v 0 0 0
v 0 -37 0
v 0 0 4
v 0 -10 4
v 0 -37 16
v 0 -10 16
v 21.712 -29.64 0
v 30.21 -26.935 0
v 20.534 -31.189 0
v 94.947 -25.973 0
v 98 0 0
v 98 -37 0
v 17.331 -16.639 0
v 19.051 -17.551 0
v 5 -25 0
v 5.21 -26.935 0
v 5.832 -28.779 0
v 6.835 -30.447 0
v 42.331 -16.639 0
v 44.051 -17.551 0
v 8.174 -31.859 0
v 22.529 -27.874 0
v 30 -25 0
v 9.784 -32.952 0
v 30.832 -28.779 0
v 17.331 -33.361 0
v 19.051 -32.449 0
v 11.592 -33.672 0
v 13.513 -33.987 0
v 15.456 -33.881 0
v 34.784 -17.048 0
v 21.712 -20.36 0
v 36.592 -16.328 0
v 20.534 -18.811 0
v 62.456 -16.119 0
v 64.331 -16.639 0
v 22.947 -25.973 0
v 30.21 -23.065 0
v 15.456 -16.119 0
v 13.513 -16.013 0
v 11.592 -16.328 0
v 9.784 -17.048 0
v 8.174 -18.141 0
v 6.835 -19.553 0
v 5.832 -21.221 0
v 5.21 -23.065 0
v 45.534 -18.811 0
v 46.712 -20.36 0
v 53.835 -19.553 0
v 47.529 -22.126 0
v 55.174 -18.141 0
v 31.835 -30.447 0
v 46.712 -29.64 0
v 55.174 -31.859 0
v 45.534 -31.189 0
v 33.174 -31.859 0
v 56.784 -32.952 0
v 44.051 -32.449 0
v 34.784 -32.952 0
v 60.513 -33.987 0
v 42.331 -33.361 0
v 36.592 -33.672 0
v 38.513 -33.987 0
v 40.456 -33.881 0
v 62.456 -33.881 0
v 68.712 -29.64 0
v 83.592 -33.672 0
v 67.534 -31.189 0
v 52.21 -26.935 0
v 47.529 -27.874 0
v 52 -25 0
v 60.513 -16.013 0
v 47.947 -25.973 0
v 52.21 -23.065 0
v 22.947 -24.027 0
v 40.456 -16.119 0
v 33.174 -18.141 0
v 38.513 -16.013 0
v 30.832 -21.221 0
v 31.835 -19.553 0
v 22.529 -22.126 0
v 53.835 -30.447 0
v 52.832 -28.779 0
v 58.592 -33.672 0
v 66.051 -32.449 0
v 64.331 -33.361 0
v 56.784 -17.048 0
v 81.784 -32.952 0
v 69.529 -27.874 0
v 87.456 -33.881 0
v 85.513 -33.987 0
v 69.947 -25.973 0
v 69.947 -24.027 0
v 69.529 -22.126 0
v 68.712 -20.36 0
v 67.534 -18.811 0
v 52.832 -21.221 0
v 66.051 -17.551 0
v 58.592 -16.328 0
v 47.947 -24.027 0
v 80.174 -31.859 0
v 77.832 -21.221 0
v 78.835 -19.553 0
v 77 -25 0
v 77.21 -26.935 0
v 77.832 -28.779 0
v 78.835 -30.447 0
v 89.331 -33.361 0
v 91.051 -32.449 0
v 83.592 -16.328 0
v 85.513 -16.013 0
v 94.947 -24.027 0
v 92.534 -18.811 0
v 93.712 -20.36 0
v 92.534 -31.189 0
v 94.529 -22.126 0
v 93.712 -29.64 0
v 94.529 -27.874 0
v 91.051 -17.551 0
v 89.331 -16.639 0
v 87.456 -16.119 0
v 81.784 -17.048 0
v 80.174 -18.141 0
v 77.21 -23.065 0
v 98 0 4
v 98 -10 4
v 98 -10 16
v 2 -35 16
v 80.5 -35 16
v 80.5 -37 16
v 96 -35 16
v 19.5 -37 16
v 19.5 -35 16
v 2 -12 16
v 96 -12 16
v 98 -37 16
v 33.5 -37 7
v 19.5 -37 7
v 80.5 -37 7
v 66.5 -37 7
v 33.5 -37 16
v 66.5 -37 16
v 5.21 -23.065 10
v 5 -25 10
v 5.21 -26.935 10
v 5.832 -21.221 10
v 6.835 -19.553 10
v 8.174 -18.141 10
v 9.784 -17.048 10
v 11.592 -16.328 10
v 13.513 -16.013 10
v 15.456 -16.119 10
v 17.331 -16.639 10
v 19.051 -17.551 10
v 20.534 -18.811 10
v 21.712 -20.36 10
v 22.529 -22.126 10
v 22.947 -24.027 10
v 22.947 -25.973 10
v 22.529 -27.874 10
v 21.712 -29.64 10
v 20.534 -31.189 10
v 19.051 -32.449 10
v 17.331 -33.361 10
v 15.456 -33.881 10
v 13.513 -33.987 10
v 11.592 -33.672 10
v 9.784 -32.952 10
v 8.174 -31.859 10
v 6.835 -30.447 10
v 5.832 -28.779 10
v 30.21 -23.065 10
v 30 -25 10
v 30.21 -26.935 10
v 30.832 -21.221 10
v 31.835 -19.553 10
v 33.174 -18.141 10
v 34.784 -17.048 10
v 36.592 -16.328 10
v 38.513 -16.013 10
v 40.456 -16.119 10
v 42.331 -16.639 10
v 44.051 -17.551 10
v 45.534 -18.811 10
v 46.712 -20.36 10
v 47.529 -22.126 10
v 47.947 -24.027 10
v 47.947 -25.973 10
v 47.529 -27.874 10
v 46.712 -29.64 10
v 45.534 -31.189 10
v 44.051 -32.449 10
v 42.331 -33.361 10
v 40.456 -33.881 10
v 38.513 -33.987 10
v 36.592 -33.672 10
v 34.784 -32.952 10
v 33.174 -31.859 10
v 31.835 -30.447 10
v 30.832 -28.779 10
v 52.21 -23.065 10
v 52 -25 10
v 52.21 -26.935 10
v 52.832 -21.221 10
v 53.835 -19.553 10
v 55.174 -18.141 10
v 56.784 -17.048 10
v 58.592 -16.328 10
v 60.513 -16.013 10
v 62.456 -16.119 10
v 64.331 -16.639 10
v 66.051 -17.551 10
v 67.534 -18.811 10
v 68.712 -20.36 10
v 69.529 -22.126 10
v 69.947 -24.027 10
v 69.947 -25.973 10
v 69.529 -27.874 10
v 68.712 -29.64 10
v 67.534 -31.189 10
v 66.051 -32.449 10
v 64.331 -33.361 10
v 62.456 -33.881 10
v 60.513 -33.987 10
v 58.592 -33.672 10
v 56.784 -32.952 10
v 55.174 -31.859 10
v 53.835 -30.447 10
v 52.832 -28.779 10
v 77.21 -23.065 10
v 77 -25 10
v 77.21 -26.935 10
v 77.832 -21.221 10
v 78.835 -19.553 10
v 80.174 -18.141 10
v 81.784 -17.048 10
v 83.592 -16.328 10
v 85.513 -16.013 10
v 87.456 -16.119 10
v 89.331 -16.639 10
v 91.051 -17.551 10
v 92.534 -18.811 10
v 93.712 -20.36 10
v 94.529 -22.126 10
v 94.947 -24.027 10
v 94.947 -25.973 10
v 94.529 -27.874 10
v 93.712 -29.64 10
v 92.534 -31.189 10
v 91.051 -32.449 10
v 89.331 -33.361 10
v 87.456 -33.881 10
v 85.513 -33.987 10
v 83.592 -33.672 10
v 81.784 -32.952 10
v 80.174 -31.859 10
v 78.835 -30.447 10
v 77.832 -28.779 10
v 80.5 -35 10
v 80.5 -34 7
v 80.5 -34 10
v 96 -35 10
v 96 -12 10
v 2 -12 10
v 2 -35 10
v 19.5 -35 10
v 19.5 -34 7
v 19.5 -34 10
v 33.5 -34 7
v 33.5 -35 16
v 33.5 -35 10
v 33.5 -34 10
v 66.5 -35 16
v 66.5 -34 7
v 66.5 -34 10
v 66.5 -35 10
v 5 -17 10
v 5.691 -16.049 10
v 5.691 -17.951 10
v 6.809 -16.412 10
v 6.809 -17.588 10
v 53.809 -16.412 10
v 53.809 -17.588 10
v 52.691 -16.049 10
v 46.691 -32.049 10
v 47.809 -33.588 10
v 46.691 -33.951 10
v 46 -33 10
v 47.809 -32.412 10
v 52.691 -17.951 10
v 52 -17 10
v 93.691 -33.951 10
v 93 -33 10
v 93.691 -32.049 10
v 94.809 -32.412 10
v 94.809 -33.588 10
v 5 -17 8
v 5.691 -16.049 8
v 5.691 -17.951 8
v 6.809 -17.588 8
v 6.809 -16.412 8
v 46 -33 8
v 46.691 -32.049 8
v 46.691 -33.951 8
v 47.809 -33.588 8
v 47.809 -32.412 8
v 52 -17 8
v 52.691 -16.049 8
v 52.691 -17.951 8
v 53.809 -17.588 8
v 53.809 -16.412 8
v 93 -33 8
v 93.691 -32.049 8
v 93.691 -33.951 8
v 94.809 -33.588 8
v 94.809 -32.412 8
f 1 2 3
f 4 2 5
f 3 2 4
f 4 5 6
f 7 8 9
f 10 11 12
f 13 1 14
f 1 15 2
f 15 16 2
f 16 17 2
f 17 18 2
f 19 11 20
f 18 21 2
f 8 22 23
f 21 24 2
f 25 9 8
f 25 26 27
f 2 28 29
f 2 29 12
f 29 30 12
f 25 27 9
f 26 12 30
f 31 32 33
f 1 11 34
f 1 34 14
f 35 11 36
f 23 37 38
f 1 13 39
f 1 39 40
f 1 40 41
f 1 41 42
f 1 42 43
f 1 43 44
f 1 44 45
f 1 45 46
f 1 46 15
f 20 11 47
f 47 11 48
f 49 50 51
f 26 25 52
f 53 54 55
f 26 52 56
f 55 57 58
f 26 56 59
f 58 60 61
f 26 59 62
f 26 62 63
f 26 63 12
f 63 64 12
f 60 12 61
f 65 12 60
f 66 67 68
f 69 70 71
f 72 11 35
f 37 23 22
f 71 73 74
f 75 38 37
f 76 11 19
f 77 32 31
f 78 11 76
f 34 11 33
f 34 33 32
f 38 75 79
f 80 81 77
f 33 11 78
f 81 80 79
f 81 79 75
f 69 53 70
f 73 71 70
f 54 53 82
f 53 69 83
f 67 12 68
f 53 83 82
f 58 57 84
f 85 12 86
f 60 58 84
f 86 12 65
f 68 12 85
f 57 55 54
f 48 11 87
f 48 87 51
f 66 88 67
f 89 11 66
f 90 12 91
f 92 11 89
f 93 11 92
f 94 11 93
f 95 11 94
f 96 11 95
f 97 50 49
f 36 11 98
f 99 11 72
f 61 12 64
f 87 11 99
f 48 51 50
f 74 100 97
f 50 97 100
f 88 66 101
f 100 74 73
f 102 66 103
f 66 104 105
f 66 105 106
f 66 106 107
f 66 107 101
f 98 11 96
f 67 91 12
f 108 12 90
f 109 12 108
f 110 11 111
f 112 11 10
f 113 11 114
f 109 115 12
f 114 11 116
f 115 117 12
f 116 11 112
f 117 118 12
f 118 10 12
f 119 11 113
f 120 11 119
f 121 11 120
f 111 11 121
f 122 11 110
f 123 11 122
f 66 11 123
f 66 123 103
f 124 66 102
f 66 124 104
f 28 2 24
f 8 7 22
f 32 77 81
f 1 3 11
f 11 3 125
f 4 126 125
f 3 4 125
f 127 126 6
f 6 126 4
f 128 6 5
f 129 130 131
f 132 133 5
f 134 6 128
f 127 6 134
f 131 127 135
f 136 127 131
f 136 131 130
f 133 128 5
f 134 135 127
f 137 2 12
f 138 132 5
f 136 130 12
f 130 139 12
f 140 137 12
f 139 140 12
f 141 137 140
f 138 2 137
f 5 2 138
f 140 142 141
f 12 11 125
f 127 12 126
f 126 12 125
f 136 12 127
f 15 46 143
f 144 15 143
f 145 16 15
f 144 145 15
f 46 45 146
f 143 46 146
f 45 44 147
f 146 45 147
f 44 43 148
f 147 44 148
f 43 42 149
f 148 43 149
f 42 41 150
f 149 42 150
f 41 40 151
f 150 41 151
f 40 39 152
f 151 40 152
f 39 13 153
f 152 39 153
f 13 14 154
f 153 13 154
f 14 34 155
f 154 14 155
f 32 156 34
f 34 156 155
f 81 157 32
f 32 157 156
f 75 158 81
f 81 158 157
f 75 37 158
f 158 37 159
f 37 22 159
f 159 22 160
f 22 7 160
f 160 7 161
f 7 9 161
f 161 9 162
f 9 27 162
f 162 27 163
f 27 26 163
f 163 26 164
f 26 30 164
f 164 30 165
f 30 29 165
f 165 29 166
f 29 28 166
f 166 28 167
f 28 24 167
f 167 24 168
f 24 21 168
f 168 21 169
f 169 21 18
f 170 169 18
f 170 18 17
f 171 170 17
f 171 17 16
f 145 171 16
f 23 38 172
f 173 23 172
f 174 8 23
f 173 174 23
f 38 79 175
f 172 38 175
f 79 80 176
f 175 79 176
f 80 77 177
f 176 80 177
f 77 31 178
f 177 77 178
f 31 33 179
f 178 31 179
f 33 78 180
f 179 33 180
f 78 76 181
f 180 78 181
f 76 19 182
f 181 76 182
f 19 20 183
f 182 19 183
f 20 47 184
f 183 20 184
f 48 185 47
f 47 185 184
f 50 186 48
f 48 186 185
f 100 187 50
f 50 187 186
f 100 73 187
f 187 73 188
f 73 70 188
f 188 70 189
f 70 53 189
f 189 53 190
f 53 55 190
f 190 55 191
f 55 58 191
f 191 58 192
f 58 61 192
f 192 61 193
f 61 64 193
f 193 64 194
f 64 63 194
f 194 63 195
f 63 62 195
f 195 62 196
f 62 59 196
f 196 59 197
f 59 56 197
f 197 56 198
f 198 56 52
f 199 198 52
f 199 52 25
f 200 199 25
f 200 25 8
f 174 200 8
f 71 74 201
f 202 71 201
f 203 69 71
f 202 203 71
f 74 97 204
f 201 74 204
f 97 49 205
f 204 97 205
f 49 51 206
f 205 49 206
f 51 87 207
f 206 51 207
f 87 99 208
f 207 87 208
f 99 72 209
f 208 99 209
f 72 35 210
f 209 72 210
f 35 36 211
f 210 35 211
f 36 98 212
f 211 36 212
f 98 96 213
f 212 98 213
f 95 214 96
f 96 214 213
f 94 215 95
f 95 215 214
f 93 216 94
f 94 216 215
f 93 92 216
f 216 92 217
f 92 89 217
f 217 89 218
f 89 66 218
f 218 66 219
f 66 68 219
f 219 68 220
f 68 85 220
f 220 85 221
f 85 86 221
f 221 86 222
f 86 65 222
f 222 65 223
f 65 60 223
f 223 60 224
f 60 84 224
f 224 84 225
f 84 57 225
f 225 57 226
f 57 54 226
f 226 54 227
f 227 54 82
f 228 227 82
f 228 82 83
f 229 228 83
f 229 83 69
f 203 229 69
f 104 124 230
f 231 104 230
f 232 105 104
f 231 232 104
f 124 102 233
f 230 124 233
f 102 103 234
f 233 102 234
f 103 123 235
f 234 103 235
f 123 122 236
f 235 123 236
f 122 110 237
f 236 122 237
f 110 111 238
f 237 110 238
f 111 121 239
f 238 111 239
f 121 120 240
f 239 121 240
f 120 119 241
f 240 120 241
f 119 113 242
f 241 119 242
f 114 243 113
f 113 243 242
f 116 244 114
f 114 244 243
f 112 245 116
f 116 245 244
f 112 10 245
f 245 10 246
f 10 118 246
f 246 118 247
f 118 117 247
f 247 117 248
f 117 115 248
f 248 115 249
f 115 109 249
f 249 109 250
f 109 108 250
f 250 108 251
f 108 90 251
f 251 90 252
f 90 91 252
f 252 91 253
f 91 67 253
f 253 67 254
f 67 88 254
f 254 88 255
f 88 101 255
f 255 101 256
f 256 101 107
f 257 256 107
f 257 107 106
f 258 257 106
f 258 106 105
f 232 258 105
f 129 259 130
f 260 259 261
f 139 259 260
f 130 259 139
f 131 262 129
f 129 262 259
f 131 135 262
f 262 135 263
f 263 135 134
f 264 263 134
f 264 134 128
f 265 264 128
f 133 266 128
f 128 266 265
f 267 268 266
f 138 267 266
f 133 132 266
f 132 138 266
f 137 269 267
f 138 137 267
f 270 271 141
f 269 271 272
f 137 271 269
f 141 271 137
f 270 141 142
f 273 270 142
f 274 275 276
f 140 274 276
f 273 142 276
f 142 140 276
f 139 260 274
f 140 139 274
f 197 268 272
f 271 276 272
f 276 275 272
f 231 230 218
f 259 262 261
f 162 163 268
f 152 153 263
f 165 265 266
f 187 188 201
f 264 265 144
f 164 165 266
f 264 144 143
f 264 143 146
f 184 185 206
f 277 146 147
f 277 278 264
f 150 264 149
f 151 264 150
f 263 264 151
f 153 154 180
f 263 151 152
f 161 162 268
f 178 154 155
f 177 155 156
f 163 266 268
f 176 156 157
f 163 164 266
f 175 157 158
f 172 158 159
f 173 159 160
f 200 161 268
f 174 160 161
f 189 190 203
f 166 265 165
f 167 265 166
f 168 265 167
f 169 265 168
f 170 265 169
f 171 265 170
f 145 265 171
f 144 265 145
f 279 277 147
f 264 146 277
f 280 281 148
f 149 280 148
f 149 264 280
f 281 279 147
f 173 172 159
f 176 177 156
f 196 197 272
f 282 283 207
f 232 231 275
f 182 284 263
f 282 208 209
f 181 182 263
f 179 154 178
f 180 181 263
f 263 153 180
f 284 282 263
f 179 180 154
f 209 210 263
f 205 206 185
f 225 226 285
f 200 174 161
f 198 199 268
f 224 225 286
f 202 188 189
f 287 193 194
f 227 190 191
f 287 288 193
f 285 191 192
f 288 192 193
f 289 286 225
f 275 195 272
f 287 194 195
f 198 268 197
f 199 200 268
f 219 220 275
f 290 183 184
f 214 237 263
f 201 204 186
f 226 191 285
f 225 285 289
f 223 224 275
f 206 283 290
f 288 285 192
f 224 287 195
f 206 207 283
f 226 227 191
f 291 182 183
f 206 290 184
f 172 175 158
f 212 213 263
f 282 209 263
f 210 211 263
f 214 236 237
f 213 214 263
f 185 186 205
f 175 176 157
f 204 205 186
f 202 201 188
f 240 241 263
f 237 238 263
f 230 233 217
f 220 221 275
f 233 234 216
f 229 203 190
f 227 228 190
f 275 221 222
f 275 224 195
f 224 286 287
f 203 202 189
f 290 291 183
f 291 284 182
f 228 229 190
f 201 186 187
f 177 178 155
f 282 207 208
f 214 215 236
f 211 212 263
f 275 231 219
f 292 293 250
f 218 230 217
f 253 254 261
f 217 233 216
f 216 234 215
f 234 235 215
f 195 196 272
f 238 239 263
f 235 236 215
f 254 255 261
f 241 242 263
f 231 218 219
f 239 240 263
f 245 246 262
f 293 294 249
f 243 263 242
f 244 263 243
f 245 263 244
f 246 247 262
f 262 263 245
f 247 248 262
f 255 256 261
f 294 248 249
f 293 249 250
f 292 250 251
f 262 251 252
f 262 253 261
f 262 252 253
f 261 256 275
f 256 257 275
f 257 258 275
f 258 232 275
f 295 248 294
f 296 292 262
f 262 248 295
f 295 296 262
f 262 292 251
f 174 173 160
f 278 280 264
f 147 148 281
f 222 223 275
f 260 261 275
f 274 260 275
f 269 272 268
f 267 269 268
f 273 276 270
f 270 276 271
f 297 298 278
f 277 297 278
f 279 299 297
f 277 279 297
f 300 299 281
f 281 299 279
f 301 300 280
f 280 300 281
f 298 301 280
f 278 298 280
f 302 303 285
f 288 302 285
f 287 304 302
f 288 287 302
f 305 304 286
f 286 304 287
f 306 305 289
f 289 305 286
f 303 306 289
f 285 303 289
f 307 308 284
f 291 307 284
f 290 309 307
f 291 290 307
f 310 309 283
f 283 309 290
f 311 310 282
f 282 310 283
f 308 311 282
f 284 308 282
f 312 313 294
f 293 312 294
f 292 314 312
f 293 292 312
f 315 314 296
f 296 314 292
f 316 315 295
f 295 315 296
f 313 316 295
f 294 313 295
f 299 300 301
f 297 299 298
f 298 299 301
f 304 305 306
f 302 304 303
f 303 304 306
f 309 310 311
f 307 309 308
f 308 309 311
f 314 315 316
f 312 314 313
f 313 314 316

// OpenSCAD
/* Hive13 SumoBot Plow */
/* aka Mr. Plow */
plowwidth = 98;
plowheight = 37;
plowdepth = 16;
sonicwidth = 47;
sonicdepth = 20; // Used to cut out the back

module sonicsensor() {
   cube([sonicwidth,sonicdepth,23]);
   translate(v = [15.5,-3,-9]) {
	   cube([14,sonicdepth+3,10]);
   }
   translate(v = [10, 1, 10]) {
	   rotate(a = [90,0,0]) {
		   cylinder(r = 9, h=16);
   	}
   }
   translate(v = [35, 1, 10]) {
	   rotate(a = [90,0,0]) {
		   cylinder(r = 9, h=16);
   	}
   }
   // Screw holes
   translate(v = [2,1,2]) {
	rotate(a = [90,0,0]) {
	   cylinder(r = 1, h=3);
	}
  }
   translate(v = [43,1,18]) {
	rotate(a = [90,0,0]) {
	   cylinder(r = 1, h=3);
	}
  }
}

module linesensor() {
		cube([36, 12, 10]);

/* Remvoe screw hole 
	translate(v = [14,5,10]) {
		cylinder(r = 1,5, h=2);
	}
*/

}

module plow() {

//difference() {

	cube([plowwidth,plowdepth,plowheight]);

   // add lip for line sensor
  // translate(v = [2,plowdepth,10]){
//	   cube([12, 8,2]);
  // }
   //translate(v = [plowwidth-14,plowdepth,10]){
//	   cube([12, 8,2]);
   //}

/*  Remove curve - not working well 
	rotate(a = [0,90,0]) {
		translate(v = [-4, 0, -1]) {
			cylinder(r =4, h=plowwidth+2);
		}
	}
	translate(v = [-1, -6, 4]) {
		cube([plowwidth+2,10,40]);
	}
}
*/
}


// Main Object Section
// Lay on front for printing
rotate(a = [90,0,0]) {
difference() {
	plow();


	//translate(v = [14, 4, 0]) {
	//	rotate(a = [0, 0, 90]) {
	//		linesensor();
	//	}
	//}
	//translate(v = [plowwidth-2, 4, 0]) {
	//	rotate(a = [0, 0, 90]) {
	//		linesensor();
	//	}
	//}

	rotate(a = [0,180,0]) {
		translate(v = [-sonicwidth-2, 10, -plowheight+2]) {
			sonicsensor();
		}
	}


	rotate(a = [0, 180, 0]) {
		translate(v = [-plowwidth+2, 10, -plowheight+2]) {
			sonicsensor();
		}
	}

	// Remove un-needed plastic
	translate(v = [0, 4, 0]) {
		cube([plowwidth, 20, 10]);
	}
	translate(v = [2,10,plowheight-25]) {
		cube([plowwidth-4, 20, 23]);
	}

}
}
